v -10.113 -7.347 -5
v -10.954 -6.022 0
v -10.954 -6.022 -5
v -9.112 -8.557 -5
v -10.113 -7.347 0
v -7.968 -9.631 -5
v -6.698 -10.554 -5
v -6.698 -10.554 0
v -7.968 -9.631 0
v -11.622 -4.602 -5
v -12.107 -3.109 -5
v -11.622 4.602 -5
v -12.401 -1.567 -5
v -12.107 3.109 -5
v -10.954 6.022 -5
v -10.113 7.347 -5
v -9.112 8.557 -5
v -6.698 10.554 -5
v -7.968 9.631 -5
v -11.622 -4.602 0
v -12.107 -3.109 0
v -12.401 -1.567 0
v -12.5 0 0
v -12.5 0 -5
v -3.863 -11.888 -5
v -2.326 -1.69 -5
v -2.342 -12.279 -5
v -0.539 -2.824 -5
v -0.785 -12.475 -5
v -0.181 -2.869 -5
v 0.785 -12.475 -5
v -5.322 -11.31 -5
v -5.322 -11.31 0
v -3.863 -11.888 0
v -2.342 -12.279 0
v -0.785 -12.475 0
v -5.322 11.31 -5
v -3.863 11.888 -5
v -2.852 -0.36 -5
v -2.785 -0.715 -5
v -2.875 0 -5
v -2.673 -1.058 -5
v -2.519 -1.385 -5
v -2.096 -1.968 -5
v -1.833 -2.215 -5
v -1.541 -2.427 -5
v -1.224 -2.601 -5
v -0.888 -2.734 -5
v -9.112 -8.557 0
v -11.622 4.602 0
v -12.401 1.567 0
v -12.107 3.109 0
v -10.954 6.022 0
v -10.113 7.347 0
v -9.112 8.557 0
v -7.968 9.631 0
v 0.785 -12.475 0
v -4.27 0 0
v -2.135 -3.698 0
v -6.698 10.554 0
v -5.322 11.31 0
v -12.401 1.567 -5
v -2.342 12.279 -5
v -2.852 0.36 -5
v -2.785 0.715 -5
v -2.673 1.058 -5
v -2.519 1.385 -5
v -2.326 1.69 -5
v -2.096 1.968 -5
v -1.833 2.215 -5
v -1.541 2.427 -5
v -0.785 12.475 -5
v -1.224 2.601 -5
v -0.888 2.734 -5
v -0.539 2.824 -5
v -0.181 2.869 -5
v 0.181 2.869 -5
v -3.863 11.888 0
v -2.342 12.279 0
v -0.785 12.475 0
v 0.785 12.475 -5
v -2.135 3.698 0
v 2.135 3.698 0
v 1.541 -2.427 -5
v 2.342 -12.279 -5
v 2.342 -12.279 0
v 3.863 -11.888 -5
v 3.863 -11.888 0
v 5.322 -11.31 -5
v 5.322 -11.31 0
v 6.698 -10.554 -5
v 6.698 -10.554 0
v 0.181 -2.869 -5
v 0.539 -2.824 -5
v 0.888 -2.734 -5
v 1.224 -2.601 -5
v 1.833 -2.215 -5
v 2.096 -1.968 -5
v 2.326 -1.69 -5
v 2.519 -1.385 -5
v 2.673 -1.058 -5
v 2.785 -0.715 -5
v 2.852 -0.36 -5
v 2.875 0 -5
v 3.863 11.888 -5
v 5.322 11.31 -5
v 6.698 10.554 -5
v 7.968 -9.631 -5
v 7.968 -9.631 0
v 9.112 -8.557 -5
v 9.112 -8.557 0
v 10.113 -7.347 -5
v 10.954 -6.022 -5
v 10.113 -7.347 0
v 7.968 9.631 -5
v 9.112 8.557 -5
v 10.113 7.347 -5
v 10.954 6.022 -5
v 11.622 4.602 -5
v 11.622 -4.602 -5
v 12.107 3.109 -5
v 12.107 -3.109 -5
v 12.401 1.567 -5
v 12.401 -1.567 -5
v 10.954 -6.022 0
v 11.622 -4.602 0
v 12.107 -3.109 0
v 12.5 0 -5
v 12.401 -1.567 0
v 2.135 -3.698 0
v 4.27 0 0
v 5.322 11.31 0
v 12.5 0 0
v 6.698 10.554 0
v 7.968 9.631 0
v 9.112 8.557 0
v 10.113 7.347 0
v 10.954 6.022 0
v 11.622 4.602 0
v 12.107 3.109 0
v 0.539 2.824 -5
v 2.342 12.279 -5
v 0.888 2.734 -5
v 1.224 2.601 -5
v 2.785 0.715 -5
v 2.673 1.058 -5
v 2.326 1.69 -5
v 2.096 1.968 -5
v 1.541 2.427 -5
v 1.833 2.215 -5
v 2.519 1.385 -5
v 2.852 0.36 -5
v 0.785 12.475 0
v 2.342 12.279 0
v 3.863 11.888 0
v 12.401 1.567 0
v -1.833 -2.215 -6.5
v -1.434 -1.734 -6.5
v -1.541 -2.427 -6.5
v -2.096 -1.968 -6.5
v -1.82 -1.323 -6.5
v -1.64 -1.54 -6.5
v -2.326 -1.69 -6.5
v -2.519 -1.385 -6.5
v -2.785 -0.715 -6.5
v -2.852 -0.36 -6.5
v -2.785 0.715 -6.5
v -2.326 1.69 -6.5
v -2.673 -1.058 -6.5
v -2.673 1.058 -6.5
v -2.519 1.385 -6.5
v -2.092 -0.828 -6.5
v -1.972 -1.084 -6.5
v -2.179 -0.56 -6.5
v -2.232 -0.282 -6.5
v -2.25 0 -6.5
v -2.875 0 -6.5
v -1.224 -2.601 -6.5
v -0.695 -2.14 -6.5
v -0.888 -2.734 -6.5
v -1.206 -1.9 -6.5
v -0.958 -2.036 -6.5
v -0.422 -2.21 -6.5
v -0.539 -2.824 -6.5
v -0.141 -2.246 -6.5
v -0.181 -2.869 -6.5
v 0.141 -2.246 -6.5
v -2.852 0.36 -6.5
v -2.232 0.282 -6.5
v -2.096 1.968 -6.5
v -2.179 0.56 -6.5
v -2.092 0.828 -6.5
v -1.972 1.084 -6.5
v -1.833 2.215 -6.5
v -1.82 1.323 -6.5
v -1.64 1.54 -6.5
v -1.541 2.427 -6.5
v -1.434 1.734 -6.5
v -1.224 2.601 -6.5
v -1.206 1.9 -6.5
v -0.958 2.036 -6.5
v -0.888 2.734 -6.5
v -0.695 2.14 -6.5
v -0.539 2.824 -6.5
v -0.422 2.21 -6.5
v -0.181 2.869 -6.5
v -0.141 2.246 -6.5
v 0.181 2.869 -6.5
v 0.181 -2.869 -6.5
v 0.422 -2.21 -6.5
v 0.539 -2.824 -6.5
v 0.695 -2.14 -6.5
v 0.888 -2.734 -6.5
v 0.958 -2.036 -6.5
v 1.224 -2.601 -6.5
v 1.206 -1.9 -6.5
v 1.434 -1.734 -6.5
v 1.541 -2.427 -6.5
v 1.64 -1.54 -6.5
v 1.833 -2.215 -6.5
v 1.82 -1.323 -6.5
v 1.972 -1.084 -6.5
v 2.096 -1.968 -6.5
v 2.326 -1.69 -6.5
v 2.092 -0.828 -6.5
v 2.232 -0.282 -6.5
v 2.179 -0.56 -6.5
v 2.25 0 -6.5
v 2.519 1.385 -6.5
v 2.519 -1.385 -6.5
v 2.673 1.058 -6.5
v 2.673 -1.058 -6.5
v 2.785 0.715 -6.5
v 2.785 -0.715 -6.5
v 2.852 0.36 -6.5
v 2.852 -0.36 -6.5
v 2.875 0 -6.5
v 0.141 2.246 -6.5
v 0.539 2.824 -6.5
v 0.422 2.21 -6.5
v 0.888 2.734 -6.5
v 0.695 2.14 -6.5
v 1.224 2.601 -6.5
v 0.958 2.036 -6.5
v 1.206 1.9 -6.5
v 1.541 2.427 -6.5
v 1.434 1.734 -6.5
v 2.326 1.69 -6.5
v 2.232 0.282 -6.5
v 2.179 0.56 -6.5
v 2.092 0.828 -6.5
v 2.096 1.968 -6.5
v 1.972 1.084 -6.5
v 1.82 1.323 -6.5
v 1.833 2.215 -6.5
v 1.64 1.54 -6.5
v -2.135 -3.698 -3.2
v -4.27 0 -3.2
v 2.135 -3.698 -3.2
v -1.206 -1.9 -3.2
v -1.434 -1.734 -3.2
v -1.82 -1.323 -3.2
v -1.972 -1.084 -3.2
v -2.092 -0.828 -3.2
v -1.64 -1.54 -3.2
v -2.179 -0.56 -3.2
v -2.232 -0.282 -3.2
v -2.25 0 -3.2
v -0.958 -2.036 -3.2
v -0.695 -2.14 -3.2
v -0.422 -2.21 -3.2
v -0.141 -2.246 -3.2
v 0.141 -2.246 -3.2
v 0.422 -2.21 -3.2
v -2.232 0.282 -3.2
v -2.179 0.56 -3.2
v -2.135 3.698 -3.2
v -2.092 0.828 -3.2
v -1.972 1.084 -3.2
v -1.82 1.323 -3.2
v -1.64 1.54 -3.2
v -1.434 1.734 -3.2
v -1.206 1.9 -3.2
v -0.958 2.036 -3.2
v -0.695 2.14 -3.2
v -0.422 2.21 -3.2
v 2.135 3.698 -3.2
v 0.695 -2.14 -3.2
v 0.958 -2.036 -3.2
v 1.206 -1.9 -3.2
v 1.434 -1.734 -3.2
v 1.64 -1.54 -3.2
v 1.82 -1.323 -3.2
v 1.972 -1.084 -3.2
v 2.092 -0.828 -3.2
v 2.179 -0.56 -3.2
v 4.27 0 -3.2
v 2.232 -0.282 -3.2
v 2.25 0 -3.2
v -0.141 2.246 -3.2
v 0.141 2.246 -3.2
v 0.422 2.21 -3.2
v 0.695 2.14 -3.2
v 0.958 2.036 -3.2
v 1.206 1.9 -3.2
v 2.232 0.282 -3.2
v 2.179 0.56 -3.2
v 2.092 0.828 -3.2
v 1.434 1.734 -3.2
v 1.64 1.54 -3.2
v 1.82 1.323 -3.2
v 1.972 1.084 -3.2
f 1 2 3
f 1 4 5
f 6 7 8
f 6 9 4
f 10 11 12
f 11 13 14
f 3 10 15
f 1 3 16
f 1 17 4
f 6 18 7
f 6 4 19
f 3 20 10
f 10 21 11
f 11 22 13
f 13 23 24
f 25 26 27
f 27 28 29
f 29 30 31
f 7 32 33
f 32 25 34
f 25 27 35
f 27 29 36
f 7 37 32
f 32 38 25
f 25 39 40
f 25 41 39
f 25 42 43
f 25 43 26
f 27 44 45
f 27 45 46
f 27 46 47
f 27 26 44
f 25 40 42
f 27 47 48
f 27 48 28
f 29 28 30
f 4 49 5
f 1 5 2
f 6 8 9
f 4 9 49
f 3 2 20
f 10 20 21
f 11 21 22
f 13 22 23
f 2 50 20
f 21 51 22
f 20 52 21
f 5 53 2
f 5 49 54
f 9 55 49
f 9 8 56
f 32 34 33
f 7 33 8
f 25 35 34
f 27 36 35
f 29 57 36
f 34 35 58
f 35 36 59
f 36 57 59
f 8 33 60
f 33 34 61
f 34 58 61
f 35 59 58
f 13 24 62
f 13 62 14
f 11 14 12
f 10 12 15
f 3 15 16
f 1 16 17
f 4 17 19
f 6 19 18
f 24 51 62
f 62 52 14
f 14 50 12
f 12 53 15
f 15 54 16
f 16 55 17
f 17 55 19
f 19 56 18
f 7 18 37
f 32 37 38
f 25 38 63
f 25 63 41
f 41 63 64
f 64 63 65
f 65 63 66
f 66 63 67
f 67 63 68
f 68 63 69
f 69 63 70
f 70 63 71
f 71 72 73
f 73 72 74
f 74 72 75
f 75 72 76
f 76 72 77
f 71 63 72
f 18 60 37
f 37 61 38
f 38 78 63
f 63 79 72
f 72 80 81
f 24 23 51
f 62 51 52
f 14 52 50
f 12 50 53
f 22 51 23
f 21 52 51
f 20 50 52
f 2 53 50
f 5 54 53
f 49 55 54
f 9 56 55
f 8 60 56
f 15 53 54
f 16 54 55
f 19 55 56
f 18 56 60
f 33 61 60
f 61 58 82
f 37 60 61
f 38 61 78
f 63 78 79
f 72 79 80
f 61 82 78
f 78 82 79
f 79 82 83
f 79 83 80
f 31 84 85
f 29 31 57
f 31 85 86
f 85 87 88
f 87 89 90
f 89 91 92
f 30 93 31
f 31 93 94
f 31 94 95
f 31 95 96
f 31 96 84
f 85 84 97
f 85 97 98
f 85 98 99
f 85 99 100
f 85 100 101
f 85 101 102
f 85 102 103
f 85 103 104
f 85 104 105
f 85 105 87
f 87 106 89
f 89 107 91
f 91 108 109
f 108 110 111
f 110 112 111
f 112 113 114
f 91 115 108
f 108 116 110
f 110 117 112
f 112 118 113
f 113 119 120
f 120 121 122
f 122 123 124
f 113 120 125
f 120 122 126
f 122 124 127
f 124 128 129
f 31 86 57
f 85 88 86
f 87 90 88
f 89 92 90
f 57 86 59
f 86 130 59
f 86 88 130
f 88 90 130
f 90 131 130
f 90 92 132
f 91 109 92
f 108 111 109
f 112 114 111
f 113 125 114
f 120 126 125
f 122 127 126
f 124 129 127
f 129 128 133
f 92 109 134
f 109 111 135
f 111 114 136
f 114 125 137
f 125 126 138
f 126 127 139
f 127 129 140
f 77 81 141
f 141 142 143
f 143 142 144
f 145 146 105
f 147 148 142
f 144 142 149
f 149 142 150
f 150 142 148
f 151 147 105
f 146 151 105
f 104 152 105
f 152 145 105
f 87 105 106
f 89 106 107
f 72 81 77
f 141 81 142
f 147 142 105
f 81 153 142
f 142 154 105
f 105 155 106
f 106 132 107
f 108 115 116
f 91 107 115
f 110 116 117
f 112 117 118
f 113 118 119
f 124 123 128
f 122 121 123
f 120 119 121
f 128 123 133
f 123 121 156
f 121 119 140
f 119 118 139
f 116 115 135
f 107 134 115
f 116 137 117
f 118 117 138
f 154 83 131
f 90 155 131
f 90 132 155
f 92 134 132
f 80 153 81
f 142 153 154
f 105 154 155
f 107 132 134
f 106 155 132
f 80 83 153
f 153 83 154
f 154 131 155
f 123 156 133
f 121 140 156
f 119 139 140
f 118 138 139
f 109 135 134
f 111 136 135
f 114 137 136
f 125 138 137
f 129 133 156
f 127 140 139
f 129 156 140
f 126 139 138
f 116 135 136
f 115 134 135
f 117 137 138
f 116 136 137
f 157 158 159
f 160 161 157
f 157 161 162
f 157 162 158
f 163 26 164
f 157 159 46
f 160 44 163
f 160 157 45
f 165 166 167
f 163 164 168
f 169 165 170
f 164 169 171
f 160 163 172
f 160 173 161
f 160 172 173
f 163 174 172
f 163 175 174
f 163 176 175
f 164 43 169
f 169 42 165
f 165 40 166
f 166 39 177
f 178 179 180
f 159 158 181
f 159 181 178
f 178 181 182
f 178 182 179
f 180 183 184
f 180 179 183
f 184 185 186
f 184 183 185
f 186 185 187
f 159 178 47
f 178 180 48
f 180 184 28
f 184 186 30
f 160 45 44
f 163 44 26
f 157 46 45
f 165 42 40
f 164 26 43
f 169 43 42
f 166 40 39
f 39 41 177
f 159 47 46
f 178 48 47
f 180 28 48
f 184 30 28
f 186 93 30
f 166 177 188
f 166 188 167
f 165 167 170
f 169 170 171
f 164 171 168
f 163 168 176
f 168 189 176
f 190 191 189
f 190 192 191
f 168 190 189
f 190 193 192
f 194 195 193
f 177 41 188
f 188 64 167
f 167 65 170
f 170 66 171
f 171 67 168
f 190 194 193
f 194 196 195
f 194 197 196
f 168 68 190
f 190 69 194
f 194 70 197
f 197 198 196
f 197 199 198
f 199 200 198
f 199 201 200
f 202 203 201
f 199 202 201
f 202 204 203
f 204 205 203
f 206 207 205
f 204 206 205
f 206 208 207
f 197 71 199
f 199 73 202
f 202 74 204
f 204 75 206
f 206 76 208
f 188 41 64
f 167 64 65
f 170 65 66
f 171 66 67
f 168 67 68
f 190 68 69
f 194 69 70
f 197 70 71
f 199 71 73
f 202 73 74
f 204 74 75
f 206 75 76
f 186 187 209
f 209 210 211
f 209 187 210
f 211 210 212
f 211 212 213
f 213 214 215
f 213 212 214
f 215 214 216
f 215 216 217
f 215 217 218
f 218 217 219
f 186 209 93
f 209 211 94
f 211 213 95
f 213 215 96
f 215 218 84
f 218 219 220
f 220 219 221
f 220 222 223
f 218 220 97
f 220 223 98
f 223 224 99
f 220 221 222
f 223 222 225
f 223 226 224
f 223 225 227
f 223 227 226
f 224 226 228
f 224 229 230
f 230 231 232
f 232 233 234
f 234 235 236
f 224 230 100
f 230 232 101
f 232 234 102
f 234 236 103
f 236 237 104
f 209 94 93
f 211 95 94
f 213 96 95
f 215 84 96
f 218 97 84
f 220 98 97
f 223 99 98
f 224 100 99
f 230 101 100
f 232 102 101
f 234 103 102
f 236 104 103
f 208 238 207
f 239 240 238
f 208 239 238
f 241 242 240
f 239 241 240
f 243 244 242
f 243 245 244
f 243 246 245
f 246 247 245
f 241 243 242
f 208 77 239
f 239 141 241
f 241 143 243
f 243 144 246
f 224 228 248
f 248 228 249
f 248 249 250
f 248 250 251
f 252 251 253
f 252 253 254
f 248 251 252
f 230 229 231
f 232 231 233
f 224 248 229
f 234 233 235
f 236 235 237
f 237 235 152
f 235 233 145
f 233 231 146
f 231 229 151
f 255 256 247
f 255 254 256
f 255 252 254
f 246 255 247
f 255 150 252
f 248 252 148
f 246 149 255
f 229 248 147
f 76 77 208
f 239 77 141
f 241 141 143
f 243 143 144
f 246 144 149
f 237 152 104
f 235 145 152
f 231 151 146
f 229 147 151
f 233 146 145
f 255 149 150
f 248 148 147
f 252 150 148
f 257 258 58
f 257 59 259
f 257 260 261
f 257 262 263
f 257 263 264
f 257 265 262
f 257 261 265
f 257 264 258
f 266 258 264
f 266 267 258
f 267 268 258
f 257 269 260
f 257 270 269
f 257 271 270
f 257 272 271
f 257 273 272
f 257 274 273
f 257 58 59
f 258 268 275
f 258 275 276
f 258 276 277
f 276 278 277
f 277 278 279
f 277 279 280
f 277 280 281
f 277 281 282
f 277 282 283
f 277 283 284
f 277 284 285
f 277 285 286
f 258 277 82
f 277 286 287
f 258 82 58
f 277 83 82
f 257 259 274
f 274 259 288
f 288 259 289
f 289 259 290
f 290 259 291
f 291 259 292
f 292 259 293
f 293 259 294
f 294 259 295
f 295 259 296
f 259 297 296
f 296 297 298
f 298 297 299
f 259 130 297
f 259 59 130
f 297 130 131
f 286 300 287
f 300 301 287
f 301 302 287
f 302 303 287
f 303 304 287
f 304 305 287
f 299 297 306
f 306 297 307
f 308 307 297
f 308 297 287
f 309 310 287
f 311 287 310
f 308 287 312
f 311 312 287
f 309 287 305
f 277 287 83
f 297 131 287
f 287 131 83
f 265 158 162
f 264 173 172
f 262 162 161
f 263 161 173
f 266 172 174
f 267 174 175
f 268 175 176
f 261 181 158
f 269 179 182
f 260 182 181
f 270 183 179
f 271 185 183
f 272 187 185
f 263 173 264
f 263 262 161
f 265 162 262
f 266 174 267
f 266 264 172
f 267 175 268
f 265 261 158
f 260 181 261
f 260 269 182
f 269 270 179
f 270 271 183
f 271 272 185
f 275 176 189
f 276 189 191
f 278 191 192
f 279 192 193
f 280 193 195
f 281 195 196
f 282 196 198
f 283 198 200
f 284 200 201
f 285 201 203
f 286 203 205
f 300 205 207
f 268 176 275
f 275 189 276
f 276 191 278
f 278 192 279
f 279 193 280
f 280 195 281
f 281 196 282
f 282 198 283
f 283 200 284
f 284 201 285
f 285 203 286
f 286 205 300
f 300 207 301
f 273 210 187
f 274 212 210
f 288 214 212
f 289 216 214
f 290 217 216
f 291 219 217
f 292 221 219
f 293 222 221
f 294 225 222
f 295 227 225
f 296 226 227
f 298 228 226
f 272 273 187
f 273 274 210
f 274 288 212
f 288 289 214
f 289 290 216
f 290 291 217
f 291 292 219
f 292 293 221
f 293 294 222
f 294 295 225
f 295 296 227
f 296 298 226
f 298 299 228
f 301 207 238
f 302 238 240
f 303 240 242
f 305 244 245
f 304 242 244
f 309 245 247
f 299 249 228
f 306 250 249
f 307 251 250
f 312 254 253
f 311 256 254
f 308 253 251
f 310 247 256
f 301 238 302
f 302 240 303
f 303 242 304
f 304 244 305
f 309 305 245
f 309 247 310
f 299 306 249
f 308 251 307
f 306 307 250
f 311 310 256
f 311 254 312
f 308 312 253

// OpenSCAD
$fn = 50;

difference() {
	union() {
		translate(v = [0, 0, -5.0]) {
			cylinder(h = 5.0, r = 12.5);
		}
		#translate(v = [0, 0, -6.5]) {
			cylinder(h = 6.5, r = 2.875);
		}
	}
	union() {
		translate(v = [0, 0, 0]) {
			rotate(a = [0, 0, 0]) {
				difference() {
					union() {
						translate(v = [0, 0, -3.2]) {
							linear_extrude(height = 3.2) {
								polygon(points = [[4.2698, 0.0], [2.1349000000000005, 3.697755269078796], [-2.134899999999999, 3.6977552690787965], [-4.2698, 5.228996902999369e-16], [-2.134900000000002, -3.6977552690787956], [2.1348999999999974, -3.697755269078798]]);
							}
						}
					}
					union();
				}
			}
		}
		#translate(v = [0, 0, -100.0]) {
			cylinder(h = 200, r = 2.25);
		}
	}
}
